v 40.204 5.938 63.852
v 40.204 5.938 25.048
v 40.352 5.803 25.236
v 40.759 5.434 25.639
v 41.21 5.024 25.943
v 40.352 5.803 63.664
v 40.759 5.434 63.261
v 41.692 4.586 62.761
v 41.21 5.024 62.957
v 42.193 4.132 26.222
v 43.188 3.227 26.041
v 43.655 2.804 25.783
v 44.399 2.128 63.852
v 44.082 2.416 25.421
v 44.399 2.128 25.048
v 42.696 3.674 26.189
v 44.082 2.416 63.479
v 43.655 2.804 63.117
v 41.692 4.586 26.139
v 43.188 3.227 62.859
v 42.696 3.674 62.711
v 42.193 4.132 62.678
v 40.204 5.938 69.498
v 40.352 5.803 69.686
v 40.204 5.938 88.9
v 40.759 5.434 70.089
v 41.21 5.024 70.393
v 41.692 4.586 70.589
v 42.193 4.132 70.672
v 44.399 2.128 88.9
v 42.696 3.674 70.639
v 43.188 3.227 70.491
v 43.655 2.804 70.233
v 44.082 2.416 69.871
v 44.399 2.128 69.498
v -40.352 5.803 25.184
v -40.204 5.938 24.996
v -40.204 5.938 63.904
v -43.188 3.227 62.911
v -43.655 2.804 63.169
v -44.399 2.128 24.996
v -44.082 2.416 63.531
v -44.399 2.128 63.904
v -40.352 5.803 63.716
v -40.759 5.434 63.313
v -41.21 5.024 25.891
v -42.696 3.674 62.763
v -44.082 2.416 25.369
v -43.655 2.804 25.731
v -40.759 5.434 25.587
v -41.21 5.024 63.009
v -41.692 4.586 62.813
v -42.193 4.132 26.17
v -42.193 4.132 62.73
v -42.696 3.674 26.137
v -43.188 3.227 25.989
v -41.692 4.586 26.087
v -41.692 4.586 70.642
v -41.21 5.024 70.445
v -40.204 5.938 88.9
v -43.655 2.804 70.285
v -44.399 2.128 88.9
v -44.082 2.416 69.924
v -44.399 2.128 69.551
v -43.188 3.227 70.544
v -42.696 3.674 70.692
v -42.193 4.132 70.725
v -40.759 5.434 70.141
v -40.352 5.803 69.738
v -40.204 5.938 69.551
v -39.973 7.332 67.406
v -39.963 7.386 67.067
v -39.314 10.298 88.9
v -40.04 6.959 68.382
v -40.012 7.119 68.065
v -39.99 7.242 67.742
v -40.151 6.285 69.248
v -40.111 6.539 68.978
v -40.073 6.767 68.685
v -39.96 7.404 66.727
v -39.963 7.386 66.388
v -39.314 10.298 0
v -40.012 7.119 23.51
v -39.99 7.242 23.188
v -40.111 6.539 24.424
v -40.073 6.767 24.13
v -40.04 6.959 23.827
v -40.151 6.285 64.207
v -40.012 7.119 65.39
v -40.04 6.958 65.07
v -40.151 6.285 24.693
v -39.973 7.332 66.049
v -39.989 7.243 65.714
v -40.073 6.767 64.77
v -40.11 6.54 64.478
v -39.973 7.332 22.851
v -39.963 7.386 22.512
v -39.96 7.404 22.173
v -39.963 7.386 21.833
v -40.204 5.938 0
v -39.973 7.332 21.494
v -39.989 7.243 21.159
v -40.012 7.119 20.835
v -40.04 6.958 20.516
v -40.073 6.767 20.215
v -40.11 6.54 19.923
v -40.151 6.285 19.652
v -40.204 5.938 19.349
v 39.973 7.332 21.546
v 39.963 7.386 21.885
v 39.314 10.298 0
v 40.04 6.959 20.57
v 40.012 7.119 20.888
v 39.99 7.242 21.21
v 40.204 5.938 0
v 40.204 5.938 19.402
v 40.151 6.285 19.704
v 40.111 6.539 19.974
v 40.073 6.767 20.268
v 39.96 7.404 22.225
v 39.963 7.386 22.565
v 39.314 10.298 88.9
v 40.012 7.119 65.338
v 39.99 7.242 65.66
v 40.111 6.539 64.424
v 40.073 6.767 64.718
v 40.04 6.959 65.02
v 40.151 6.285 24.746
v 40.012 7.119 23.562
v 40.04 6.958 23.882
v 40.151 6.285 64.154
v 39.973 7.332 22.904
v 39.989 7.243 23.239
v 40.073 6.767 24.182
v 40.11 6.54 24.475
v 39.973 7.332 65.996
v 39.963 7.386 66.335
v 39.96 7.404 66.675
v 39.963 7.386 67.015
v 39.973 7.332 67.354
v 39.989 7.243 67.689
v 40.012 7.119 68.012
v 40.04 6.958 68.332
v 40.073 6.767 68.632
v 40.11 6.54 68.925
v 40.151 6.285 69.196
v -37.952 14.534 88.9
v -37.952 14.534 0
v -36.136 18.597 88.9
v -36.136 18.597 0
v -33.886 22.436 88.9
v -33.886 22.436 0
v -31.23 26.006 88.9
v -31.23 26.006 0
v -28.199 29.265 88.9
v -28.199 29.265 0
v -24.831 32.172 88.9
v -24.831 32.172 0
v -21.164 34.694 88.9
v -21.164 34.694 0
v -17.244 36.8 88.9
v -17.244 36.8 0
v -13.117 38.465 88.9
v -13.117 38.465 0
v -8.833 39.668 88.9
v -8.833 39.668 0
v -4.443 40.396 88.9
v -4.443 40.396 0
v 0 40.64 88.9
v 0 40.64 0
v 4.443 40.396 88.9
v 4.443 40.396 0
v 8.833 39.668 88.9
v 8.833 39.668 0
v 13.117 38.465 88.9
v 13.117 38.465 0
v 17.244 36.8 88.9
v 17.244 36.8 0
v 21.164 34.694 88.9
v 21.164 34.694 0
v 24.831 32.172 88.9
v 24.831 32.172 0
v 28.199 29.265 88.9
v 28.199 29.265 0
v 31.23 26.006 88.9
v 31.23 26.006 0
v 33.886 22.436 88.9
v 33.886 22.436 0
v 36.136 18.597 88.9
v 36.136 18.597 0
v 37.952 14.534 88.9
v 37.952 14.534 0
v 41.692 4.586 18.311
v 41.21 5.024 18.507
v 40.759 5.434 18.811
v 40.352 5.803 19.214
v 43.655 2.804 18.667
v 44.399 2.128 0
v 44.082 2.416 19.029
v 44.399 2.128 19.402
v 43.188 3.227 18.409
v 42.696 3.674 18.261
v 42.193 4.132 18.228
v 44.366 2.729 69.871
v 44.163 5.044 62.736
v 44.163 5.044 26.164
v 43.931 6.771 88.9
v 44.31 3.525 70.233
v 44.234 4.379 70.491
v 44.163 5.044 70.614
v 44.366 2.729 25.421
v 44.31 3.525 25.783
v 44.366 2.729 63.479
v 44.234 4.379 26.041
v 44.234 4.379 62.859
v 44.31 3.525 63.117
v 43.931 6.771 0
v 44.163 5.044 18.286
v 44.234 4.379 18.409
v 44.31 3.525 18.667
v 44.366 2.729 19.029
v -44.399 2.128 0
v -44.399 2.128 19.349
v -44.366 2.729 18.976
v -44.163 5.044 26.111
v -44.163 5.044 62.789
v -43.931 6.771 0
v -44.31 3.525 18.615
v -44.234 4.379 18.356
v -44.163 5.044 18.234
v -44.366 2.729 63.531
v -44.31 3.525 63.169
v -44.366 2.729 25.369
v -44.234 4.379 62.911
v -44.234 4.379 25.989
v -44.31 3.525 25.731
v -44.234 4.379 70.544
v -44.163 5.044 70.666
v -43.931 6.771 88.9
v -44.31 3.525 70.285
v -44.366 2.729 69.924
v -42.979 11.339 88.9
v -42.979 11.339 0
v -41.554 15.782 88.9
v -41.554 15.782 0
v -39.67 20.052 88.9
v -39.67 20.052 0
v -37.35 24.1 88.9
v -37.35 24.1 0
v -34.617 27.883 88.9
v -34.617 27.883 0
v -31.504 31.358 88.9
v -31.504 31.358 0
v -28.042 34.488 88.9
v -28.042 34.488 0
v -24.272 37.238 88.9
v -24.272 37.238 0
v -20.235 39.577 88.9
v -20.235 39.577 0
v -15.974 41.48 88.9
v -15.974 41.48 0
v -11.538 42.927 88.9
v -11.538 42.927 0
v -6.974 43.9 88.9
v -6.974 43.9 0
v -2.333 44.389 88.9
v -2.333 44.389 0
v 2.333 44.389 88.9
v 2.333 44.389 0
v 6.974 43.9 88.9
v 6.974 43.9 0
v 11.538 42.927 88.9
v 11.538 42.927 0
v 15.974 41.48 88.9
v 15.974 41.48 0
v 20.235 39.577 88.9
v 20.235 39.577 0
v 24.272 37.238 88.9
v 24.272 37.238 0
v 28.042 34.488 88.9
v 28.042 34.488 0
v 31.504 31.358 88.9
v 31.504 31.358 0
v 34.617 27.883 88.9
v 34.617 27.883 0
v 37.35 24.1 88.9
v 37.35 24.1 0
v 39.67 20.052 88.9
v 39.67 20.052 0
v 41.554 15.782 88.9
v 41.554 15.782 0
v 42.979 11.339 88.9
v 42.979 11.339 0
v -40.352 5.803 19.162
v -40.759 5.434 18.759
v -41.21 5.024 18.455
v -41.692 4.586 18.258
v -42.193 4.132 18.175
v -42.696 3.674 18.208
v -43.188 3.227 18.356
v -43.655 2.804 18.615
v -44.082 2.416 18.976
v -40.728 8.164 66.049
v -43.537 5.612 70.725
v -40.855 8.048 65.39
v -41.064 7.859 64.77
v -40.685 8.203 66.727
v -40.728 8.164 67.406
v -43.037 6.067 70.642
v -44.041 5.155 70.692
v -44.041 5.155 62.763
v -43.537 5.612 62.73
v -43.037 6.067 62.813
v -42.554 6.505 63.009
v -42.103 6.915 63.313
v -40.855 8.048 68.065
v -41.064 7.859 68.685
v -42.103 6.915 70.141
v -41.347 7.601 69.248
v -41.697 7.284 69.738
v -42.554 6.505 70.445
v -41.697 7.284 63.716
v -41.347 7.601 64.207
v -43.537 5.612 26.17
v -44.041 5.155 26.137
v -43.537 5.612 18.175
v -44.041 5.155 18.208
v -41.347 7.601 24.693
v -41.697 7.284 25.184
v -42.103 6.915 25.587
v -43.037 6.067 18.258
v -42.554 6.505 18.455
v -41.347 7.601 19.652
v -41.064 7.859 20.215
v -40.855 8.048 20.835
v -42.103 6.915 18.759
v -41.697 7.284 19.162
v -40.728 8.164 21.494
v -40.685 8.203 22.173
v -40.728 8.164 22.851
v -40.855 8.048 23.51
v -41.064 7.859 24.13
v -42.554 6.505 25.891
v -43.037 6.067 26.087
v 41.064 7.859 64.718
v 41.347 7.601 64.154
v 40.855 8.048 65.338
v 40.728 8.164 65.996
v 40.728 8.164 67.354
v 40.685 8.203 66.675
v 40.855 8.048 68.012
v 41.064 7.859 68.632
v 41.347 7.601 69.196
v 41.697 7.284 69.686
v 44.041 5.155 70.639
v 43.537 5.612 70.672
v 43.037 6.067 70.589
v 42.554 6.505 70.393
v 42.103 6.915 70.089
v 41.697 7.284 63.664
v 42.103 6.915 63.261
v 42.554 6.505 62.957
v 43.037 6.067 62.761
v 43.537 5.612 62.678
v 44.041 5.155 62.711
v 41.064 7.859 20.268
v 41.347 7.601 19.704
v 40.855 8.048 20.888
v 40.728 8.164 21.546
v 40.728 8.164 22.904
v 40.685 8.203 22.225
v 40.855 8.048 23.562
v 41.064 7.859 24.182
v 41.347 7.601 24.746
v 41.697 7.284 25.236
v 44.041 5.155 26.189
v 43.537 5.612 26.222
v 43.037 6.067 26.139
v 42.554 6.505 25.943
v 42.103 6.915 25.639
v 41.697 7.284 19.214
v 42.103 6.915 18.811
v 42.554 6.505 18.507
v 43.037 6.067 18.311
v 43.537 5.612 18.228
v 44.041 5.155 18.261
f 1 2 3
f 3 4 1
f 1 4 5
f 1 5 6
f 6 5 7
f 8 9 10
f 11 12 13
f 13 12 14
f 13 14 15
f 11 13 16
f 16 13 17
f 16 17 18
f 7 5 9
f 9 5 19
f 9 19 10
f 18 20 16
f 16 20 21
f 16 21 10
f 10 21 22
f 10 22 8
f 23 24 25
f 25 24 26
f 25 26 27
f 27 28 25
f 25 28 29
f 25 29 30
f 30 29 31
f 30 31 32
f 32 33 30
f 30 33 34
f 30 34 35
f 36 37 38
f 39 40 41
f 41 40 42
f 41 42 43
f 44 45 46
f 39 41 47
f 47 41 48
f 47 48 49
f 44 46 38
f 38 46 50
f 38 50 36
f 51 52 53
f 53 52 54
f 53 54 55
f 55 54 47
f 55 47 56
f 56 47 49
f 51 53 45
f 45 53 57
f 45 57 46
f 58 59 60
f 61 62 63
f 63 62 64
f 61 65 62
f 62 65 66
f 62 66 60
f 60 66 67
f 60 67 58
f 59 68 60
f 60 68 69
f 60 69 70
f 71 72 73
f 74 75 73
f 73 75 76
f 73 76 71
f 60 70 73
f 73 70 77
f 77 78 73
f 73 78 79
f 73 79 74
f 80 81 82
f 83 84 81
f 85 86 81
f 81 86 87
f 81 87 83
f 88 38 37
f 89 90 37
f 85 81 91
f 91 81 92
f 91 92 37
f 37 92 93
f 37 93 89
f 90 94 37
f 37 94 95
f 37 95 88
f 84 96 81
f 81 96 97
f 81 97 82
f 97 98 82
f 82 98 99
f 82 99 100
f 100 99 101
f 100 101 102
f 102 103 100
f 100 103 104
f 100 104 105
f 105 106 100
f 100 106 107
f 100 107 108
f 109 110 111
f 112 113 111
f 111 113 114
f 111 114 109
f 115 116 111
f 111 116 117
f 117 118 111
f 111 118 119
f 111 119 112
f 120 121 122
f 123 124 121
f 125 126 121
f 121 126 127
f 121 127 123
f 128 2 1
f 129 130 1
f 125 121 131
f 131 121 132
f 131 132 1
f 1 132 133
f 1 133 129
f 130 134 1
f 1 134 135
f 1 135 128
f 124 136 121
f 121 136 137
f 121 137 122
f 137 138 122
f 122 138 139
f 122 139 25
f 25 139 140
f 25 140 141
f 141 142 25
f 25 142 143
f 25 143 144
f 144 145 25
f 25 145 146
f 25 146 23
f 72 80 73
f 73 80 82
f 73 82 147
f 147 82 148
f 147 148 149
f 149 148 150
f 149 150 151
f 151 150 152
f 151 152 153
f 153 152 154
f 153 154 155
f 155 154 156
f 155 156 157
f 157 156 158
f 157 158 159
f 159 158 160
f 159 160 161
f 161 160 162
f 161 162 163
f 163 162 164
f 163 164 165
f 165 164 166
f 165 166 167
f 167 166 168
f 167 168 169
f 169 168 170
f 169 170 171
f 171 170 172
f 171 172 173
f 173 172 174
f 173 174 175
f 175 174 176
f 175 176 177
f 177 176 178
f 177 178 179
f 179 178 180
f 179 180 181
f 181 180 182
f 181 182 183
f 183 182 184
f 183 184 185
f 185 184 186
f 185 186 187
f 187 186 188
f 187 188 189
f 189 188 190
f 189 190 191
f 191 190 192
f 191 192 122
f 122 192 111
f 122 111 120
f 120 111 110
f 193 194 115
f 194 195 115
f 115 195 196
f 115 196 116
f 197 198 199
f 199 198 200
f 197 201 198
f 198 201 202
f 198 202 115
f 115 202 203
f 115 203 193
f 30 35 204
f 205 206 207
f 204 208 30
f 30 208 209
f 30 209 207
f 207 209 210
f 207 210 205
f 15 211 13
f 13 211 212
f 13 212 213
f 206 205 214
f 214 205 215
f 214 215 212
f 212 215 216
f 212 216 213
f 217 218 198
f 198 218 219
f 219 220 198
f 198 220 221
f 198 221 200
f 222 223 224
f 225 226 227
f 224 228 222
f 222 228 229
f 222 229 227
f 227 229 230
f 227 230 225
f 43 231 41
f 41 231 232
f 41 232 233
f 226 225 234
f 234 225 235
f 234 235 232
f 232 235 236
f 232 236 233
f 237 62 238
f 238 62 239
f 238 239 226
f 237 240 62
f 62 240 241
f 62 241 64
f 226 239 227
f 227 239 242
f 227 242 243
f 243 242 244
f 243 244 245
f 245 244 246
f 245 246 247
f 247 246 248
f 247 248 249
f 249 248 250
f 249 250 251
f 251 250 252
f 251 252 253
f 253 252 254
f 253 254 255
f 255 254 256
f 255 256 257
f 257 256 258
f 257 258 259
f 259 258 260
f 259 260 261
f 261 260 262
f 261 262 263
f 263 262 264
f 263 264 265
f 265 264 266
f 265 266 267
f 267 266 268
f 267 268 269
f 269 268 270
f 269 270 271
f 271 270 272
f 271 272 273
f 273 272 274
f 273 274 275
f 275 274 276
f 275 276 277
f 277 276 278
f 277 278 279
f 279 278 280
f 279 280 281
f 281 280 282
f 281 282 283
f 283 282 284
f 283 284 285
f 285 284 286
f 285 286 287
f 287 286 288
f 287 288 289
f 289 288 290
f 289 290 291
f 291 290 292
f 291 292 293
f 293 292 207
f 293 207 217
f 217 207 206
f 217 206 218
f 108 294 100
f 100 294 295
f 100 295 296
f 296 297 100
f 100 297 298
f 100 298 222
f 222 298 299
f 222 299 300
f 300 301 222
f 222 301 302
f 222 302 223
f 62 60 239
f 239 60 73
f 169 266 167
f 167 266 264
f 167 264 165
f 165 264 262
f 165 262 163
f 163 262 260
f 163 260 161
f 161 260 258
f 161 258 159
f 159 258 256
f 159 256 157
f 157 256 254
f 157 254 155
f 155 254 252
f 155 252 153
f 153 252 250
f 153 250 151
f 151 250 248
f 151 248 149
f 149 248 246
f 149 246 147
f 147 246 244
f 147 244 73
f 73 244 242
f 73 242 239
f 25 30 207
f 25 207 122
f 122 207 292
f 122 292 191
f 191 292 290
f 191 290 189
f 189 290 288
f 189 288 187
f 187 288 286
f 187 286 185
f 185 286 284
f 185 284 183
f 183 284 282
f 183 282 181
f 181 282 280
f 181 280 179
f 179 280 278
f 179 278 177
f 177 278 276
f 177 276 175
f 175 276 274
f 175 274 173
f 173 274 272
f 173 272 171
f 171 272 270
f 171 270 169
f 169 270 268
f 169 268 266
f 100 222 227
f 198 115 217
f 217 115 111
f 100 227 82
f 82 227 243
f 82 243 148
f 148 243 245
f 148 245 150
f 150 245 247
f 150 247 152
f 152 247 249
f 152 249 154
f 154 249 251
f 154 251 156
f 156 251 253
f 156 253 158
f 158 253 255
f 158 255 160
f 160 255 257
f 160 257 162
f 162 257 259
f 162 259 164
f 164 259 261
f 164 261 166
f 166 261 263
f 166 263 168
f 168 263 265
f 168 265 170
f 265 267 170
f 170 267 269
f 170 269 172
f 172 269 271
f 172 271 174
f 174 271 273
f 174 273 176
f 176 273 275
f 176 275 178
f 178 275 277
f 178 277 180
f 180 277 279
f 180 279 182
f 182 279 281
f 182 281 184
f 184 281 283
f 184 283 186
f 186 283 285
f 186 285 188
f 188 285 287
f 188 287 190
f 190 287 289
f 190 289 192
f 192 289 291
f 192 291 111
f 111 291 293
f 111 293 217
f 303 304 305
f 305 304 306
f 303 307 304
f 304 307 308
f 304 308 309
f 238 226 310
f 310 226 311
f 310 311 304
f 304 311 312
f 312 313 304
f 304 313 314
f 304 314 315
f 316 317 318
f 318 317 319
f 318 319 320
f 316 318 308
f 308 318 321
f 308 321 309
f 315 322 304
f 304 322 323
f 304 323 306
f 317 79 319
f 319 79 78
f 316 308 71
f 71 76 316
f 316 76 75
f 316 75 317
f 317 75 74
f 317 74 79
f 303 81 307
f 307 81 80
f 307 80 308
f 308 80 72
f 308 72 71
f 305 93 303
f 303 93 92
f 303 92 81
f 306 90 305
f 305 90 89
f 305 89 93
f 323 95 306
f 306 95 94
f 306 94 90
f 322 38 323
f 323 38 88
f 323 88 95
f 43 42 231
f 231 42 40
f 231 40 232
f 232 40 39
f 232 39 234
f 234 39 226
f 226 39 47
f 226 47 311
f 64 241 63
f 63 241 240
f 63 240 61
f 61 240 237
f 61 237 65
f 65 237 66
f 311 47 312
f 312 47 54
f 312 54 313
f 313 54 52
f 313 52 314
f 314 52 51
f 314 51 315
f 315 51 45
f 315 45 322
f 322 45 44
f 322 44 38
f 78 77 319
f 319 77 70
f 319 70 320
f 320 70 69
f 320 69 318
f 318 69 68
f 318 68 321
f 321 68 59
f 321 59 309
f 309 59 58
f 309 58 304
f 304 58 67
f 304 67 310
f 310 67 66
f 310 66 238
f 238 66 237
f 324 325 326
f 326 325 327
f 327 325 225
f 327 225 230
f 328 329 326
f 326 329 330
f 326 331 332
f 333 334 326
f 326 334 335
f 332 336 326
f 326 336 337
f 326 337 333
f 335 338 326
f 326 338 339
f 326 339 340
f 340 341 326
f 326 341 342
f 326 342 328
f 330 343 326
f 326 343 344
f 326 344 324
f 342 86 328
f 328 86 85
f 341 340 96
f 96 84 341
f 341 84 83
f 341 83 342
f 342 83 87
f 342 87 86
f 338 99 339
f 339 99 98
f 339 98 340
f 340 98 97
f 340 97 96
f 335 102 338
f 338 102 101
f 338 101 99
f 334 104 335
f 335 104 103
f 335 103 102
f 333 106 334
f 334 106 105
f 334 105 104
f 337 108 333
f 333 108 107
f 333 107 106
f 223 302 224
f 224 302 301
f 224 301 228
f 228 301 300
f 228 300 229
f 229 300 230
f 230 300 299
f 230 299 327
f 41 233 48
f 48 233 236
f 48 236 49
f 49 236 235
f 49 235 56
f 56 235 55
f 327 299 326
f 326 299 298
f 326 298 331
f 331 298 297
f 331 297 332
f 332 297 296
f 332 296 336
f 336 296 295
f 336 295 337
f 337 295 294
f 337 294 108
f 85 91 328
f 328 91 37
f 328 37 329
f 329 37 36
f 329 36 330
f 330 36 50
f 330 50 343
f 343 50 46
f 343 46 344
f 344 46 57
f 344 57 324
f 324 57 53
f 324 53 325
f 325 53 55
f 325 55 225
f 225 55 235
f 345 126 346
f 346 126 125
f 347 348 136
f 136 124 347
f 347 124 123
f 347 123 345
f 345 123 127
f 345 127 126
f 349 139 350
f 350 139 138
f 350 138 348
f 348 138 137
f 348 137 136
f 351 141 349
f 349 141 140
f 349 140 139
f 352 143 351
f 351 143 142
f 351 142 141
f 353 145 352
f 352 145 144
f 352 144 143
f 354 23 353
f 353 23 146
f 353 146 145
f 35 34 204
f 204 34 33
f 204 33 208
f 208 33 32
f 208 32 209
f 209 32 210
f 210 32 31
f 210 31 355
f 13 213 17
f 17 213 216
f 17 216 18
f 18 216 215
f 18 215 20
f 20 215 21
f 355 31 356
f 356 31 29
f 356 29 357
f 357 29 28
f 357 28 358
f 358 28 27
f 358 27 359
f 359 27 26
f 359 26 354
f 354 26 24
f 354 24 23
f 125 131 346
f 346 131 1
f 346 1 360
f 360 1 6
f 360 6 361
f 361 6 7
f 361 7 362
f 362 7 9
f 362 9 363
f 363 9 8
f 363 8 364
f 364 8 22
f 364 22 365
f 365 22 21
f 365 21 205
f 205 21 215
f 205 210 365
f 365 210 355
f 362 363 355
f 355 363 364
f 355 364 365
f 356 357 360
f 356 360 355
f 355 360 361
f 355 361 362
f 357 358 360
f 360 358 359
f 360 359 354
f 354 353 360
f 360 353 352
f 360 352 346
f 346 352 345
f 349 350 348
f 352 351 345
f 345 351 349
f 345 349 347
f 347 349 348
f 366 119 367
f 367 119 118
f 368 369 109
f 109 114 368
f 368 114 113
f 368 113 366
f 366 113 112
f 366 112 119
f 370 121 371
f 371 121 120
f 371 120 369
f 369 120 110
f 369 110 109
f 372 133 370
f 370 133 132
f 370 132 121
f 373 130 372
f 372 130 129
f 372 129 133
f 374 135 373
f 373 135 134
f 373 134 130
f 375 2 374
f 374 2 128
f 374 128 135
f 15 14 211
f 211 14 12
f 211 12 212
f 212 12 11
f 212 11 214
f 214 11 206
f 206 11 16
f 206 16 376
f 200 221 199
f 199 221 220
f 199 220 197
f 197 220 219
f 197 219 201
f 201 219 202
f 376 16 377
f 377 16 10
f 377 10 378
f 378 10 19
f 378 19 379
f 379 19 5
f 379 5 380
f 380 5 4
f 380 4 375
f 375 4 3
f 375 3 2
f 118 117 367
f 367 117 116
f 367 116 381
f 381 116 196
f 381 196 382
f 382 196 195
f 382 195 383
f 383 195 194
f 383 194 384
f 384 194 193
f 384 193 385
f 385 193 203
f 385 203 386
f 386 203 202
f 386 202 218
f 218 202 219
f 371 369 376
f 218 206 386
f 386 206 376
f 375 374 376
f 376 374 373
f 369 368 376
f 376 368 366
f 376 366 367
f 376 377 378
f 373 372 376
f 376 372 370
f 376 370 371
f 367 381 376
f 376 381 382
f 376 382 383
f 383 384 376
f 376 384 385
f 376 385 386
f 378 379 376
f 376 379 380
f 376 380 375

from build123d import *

# Parameters (mm, degrees)
BOSS_EXTRUDE1_DEPTH = 88.9
SKETCH2_R           = 4
CUT_EXTRUDE1_DEPTH  = 2
SKETCH3_R           = 4
CUT_EXTRUDE2_DEPTH  = 2


with BuildPart() as part:
    # Sketch1 → Boss-Extrude1 (new body)
    with BuildSketch(Plane.XY):
        with BuildLine():
            Line((-40.203883769, 5.937788296), (-44.399042974, 2.127788296))
            ThreePointArc((-44.399042974, 2.127788296), (0, 44.45), (44.399042974, 2.127788296))
            Line((44.399042974, 2.127788296), (40.203883769, 5.937788296))
            ThreePointArc((40.203883769, 5.937788296), (0, 40.64), (-40.203883769, 5.937788296))
        make_face()
    extrude(amount=BOSS_EXTRUDE1_DEPTH)

    # Sketch2 → Cut-Extrude1 (cut)
    with BuildSketch(Plane(origin=(-21.127225221, 23.263011377, 0), x_dir=(0.7402720771062566, 0.6723074087475077, 0), z_dir=(0.6723074087475077, -0.7402720771062566, 0))):
        with Locations((-28.603318705, 66.727309036)):
            Circle(SKETCH2_R)
        with Locations((-28.603318705, 22.172690964)):
            Circle(SKETCH2_R)
    extrude(amount=-CUT_EXTRUDE1_DEPTH, mode=Mode.SUBTRACT)

    # Sketch3 → Cut-Extrude2 (cut)
    with BuildSketch(Plane(origin=(21.127225221, 23.263011377, 0), x_dir=(0.7402720771062566, -0.6723074087475077, 0), z_dir=(-0.6723074087475077, -0.7402720771062566, 0))):
        with Locations((28.603318705, 66.675)):
            Circle(SKETCH3_R)
        with Locations((28.603318705, 22.225)):
            Circle(SKETCH3_R)
    extrude(amount=-CUT_EXTRUDE2_DEPTH, mode=Mode.SUBTRACT)


solid = part.part
